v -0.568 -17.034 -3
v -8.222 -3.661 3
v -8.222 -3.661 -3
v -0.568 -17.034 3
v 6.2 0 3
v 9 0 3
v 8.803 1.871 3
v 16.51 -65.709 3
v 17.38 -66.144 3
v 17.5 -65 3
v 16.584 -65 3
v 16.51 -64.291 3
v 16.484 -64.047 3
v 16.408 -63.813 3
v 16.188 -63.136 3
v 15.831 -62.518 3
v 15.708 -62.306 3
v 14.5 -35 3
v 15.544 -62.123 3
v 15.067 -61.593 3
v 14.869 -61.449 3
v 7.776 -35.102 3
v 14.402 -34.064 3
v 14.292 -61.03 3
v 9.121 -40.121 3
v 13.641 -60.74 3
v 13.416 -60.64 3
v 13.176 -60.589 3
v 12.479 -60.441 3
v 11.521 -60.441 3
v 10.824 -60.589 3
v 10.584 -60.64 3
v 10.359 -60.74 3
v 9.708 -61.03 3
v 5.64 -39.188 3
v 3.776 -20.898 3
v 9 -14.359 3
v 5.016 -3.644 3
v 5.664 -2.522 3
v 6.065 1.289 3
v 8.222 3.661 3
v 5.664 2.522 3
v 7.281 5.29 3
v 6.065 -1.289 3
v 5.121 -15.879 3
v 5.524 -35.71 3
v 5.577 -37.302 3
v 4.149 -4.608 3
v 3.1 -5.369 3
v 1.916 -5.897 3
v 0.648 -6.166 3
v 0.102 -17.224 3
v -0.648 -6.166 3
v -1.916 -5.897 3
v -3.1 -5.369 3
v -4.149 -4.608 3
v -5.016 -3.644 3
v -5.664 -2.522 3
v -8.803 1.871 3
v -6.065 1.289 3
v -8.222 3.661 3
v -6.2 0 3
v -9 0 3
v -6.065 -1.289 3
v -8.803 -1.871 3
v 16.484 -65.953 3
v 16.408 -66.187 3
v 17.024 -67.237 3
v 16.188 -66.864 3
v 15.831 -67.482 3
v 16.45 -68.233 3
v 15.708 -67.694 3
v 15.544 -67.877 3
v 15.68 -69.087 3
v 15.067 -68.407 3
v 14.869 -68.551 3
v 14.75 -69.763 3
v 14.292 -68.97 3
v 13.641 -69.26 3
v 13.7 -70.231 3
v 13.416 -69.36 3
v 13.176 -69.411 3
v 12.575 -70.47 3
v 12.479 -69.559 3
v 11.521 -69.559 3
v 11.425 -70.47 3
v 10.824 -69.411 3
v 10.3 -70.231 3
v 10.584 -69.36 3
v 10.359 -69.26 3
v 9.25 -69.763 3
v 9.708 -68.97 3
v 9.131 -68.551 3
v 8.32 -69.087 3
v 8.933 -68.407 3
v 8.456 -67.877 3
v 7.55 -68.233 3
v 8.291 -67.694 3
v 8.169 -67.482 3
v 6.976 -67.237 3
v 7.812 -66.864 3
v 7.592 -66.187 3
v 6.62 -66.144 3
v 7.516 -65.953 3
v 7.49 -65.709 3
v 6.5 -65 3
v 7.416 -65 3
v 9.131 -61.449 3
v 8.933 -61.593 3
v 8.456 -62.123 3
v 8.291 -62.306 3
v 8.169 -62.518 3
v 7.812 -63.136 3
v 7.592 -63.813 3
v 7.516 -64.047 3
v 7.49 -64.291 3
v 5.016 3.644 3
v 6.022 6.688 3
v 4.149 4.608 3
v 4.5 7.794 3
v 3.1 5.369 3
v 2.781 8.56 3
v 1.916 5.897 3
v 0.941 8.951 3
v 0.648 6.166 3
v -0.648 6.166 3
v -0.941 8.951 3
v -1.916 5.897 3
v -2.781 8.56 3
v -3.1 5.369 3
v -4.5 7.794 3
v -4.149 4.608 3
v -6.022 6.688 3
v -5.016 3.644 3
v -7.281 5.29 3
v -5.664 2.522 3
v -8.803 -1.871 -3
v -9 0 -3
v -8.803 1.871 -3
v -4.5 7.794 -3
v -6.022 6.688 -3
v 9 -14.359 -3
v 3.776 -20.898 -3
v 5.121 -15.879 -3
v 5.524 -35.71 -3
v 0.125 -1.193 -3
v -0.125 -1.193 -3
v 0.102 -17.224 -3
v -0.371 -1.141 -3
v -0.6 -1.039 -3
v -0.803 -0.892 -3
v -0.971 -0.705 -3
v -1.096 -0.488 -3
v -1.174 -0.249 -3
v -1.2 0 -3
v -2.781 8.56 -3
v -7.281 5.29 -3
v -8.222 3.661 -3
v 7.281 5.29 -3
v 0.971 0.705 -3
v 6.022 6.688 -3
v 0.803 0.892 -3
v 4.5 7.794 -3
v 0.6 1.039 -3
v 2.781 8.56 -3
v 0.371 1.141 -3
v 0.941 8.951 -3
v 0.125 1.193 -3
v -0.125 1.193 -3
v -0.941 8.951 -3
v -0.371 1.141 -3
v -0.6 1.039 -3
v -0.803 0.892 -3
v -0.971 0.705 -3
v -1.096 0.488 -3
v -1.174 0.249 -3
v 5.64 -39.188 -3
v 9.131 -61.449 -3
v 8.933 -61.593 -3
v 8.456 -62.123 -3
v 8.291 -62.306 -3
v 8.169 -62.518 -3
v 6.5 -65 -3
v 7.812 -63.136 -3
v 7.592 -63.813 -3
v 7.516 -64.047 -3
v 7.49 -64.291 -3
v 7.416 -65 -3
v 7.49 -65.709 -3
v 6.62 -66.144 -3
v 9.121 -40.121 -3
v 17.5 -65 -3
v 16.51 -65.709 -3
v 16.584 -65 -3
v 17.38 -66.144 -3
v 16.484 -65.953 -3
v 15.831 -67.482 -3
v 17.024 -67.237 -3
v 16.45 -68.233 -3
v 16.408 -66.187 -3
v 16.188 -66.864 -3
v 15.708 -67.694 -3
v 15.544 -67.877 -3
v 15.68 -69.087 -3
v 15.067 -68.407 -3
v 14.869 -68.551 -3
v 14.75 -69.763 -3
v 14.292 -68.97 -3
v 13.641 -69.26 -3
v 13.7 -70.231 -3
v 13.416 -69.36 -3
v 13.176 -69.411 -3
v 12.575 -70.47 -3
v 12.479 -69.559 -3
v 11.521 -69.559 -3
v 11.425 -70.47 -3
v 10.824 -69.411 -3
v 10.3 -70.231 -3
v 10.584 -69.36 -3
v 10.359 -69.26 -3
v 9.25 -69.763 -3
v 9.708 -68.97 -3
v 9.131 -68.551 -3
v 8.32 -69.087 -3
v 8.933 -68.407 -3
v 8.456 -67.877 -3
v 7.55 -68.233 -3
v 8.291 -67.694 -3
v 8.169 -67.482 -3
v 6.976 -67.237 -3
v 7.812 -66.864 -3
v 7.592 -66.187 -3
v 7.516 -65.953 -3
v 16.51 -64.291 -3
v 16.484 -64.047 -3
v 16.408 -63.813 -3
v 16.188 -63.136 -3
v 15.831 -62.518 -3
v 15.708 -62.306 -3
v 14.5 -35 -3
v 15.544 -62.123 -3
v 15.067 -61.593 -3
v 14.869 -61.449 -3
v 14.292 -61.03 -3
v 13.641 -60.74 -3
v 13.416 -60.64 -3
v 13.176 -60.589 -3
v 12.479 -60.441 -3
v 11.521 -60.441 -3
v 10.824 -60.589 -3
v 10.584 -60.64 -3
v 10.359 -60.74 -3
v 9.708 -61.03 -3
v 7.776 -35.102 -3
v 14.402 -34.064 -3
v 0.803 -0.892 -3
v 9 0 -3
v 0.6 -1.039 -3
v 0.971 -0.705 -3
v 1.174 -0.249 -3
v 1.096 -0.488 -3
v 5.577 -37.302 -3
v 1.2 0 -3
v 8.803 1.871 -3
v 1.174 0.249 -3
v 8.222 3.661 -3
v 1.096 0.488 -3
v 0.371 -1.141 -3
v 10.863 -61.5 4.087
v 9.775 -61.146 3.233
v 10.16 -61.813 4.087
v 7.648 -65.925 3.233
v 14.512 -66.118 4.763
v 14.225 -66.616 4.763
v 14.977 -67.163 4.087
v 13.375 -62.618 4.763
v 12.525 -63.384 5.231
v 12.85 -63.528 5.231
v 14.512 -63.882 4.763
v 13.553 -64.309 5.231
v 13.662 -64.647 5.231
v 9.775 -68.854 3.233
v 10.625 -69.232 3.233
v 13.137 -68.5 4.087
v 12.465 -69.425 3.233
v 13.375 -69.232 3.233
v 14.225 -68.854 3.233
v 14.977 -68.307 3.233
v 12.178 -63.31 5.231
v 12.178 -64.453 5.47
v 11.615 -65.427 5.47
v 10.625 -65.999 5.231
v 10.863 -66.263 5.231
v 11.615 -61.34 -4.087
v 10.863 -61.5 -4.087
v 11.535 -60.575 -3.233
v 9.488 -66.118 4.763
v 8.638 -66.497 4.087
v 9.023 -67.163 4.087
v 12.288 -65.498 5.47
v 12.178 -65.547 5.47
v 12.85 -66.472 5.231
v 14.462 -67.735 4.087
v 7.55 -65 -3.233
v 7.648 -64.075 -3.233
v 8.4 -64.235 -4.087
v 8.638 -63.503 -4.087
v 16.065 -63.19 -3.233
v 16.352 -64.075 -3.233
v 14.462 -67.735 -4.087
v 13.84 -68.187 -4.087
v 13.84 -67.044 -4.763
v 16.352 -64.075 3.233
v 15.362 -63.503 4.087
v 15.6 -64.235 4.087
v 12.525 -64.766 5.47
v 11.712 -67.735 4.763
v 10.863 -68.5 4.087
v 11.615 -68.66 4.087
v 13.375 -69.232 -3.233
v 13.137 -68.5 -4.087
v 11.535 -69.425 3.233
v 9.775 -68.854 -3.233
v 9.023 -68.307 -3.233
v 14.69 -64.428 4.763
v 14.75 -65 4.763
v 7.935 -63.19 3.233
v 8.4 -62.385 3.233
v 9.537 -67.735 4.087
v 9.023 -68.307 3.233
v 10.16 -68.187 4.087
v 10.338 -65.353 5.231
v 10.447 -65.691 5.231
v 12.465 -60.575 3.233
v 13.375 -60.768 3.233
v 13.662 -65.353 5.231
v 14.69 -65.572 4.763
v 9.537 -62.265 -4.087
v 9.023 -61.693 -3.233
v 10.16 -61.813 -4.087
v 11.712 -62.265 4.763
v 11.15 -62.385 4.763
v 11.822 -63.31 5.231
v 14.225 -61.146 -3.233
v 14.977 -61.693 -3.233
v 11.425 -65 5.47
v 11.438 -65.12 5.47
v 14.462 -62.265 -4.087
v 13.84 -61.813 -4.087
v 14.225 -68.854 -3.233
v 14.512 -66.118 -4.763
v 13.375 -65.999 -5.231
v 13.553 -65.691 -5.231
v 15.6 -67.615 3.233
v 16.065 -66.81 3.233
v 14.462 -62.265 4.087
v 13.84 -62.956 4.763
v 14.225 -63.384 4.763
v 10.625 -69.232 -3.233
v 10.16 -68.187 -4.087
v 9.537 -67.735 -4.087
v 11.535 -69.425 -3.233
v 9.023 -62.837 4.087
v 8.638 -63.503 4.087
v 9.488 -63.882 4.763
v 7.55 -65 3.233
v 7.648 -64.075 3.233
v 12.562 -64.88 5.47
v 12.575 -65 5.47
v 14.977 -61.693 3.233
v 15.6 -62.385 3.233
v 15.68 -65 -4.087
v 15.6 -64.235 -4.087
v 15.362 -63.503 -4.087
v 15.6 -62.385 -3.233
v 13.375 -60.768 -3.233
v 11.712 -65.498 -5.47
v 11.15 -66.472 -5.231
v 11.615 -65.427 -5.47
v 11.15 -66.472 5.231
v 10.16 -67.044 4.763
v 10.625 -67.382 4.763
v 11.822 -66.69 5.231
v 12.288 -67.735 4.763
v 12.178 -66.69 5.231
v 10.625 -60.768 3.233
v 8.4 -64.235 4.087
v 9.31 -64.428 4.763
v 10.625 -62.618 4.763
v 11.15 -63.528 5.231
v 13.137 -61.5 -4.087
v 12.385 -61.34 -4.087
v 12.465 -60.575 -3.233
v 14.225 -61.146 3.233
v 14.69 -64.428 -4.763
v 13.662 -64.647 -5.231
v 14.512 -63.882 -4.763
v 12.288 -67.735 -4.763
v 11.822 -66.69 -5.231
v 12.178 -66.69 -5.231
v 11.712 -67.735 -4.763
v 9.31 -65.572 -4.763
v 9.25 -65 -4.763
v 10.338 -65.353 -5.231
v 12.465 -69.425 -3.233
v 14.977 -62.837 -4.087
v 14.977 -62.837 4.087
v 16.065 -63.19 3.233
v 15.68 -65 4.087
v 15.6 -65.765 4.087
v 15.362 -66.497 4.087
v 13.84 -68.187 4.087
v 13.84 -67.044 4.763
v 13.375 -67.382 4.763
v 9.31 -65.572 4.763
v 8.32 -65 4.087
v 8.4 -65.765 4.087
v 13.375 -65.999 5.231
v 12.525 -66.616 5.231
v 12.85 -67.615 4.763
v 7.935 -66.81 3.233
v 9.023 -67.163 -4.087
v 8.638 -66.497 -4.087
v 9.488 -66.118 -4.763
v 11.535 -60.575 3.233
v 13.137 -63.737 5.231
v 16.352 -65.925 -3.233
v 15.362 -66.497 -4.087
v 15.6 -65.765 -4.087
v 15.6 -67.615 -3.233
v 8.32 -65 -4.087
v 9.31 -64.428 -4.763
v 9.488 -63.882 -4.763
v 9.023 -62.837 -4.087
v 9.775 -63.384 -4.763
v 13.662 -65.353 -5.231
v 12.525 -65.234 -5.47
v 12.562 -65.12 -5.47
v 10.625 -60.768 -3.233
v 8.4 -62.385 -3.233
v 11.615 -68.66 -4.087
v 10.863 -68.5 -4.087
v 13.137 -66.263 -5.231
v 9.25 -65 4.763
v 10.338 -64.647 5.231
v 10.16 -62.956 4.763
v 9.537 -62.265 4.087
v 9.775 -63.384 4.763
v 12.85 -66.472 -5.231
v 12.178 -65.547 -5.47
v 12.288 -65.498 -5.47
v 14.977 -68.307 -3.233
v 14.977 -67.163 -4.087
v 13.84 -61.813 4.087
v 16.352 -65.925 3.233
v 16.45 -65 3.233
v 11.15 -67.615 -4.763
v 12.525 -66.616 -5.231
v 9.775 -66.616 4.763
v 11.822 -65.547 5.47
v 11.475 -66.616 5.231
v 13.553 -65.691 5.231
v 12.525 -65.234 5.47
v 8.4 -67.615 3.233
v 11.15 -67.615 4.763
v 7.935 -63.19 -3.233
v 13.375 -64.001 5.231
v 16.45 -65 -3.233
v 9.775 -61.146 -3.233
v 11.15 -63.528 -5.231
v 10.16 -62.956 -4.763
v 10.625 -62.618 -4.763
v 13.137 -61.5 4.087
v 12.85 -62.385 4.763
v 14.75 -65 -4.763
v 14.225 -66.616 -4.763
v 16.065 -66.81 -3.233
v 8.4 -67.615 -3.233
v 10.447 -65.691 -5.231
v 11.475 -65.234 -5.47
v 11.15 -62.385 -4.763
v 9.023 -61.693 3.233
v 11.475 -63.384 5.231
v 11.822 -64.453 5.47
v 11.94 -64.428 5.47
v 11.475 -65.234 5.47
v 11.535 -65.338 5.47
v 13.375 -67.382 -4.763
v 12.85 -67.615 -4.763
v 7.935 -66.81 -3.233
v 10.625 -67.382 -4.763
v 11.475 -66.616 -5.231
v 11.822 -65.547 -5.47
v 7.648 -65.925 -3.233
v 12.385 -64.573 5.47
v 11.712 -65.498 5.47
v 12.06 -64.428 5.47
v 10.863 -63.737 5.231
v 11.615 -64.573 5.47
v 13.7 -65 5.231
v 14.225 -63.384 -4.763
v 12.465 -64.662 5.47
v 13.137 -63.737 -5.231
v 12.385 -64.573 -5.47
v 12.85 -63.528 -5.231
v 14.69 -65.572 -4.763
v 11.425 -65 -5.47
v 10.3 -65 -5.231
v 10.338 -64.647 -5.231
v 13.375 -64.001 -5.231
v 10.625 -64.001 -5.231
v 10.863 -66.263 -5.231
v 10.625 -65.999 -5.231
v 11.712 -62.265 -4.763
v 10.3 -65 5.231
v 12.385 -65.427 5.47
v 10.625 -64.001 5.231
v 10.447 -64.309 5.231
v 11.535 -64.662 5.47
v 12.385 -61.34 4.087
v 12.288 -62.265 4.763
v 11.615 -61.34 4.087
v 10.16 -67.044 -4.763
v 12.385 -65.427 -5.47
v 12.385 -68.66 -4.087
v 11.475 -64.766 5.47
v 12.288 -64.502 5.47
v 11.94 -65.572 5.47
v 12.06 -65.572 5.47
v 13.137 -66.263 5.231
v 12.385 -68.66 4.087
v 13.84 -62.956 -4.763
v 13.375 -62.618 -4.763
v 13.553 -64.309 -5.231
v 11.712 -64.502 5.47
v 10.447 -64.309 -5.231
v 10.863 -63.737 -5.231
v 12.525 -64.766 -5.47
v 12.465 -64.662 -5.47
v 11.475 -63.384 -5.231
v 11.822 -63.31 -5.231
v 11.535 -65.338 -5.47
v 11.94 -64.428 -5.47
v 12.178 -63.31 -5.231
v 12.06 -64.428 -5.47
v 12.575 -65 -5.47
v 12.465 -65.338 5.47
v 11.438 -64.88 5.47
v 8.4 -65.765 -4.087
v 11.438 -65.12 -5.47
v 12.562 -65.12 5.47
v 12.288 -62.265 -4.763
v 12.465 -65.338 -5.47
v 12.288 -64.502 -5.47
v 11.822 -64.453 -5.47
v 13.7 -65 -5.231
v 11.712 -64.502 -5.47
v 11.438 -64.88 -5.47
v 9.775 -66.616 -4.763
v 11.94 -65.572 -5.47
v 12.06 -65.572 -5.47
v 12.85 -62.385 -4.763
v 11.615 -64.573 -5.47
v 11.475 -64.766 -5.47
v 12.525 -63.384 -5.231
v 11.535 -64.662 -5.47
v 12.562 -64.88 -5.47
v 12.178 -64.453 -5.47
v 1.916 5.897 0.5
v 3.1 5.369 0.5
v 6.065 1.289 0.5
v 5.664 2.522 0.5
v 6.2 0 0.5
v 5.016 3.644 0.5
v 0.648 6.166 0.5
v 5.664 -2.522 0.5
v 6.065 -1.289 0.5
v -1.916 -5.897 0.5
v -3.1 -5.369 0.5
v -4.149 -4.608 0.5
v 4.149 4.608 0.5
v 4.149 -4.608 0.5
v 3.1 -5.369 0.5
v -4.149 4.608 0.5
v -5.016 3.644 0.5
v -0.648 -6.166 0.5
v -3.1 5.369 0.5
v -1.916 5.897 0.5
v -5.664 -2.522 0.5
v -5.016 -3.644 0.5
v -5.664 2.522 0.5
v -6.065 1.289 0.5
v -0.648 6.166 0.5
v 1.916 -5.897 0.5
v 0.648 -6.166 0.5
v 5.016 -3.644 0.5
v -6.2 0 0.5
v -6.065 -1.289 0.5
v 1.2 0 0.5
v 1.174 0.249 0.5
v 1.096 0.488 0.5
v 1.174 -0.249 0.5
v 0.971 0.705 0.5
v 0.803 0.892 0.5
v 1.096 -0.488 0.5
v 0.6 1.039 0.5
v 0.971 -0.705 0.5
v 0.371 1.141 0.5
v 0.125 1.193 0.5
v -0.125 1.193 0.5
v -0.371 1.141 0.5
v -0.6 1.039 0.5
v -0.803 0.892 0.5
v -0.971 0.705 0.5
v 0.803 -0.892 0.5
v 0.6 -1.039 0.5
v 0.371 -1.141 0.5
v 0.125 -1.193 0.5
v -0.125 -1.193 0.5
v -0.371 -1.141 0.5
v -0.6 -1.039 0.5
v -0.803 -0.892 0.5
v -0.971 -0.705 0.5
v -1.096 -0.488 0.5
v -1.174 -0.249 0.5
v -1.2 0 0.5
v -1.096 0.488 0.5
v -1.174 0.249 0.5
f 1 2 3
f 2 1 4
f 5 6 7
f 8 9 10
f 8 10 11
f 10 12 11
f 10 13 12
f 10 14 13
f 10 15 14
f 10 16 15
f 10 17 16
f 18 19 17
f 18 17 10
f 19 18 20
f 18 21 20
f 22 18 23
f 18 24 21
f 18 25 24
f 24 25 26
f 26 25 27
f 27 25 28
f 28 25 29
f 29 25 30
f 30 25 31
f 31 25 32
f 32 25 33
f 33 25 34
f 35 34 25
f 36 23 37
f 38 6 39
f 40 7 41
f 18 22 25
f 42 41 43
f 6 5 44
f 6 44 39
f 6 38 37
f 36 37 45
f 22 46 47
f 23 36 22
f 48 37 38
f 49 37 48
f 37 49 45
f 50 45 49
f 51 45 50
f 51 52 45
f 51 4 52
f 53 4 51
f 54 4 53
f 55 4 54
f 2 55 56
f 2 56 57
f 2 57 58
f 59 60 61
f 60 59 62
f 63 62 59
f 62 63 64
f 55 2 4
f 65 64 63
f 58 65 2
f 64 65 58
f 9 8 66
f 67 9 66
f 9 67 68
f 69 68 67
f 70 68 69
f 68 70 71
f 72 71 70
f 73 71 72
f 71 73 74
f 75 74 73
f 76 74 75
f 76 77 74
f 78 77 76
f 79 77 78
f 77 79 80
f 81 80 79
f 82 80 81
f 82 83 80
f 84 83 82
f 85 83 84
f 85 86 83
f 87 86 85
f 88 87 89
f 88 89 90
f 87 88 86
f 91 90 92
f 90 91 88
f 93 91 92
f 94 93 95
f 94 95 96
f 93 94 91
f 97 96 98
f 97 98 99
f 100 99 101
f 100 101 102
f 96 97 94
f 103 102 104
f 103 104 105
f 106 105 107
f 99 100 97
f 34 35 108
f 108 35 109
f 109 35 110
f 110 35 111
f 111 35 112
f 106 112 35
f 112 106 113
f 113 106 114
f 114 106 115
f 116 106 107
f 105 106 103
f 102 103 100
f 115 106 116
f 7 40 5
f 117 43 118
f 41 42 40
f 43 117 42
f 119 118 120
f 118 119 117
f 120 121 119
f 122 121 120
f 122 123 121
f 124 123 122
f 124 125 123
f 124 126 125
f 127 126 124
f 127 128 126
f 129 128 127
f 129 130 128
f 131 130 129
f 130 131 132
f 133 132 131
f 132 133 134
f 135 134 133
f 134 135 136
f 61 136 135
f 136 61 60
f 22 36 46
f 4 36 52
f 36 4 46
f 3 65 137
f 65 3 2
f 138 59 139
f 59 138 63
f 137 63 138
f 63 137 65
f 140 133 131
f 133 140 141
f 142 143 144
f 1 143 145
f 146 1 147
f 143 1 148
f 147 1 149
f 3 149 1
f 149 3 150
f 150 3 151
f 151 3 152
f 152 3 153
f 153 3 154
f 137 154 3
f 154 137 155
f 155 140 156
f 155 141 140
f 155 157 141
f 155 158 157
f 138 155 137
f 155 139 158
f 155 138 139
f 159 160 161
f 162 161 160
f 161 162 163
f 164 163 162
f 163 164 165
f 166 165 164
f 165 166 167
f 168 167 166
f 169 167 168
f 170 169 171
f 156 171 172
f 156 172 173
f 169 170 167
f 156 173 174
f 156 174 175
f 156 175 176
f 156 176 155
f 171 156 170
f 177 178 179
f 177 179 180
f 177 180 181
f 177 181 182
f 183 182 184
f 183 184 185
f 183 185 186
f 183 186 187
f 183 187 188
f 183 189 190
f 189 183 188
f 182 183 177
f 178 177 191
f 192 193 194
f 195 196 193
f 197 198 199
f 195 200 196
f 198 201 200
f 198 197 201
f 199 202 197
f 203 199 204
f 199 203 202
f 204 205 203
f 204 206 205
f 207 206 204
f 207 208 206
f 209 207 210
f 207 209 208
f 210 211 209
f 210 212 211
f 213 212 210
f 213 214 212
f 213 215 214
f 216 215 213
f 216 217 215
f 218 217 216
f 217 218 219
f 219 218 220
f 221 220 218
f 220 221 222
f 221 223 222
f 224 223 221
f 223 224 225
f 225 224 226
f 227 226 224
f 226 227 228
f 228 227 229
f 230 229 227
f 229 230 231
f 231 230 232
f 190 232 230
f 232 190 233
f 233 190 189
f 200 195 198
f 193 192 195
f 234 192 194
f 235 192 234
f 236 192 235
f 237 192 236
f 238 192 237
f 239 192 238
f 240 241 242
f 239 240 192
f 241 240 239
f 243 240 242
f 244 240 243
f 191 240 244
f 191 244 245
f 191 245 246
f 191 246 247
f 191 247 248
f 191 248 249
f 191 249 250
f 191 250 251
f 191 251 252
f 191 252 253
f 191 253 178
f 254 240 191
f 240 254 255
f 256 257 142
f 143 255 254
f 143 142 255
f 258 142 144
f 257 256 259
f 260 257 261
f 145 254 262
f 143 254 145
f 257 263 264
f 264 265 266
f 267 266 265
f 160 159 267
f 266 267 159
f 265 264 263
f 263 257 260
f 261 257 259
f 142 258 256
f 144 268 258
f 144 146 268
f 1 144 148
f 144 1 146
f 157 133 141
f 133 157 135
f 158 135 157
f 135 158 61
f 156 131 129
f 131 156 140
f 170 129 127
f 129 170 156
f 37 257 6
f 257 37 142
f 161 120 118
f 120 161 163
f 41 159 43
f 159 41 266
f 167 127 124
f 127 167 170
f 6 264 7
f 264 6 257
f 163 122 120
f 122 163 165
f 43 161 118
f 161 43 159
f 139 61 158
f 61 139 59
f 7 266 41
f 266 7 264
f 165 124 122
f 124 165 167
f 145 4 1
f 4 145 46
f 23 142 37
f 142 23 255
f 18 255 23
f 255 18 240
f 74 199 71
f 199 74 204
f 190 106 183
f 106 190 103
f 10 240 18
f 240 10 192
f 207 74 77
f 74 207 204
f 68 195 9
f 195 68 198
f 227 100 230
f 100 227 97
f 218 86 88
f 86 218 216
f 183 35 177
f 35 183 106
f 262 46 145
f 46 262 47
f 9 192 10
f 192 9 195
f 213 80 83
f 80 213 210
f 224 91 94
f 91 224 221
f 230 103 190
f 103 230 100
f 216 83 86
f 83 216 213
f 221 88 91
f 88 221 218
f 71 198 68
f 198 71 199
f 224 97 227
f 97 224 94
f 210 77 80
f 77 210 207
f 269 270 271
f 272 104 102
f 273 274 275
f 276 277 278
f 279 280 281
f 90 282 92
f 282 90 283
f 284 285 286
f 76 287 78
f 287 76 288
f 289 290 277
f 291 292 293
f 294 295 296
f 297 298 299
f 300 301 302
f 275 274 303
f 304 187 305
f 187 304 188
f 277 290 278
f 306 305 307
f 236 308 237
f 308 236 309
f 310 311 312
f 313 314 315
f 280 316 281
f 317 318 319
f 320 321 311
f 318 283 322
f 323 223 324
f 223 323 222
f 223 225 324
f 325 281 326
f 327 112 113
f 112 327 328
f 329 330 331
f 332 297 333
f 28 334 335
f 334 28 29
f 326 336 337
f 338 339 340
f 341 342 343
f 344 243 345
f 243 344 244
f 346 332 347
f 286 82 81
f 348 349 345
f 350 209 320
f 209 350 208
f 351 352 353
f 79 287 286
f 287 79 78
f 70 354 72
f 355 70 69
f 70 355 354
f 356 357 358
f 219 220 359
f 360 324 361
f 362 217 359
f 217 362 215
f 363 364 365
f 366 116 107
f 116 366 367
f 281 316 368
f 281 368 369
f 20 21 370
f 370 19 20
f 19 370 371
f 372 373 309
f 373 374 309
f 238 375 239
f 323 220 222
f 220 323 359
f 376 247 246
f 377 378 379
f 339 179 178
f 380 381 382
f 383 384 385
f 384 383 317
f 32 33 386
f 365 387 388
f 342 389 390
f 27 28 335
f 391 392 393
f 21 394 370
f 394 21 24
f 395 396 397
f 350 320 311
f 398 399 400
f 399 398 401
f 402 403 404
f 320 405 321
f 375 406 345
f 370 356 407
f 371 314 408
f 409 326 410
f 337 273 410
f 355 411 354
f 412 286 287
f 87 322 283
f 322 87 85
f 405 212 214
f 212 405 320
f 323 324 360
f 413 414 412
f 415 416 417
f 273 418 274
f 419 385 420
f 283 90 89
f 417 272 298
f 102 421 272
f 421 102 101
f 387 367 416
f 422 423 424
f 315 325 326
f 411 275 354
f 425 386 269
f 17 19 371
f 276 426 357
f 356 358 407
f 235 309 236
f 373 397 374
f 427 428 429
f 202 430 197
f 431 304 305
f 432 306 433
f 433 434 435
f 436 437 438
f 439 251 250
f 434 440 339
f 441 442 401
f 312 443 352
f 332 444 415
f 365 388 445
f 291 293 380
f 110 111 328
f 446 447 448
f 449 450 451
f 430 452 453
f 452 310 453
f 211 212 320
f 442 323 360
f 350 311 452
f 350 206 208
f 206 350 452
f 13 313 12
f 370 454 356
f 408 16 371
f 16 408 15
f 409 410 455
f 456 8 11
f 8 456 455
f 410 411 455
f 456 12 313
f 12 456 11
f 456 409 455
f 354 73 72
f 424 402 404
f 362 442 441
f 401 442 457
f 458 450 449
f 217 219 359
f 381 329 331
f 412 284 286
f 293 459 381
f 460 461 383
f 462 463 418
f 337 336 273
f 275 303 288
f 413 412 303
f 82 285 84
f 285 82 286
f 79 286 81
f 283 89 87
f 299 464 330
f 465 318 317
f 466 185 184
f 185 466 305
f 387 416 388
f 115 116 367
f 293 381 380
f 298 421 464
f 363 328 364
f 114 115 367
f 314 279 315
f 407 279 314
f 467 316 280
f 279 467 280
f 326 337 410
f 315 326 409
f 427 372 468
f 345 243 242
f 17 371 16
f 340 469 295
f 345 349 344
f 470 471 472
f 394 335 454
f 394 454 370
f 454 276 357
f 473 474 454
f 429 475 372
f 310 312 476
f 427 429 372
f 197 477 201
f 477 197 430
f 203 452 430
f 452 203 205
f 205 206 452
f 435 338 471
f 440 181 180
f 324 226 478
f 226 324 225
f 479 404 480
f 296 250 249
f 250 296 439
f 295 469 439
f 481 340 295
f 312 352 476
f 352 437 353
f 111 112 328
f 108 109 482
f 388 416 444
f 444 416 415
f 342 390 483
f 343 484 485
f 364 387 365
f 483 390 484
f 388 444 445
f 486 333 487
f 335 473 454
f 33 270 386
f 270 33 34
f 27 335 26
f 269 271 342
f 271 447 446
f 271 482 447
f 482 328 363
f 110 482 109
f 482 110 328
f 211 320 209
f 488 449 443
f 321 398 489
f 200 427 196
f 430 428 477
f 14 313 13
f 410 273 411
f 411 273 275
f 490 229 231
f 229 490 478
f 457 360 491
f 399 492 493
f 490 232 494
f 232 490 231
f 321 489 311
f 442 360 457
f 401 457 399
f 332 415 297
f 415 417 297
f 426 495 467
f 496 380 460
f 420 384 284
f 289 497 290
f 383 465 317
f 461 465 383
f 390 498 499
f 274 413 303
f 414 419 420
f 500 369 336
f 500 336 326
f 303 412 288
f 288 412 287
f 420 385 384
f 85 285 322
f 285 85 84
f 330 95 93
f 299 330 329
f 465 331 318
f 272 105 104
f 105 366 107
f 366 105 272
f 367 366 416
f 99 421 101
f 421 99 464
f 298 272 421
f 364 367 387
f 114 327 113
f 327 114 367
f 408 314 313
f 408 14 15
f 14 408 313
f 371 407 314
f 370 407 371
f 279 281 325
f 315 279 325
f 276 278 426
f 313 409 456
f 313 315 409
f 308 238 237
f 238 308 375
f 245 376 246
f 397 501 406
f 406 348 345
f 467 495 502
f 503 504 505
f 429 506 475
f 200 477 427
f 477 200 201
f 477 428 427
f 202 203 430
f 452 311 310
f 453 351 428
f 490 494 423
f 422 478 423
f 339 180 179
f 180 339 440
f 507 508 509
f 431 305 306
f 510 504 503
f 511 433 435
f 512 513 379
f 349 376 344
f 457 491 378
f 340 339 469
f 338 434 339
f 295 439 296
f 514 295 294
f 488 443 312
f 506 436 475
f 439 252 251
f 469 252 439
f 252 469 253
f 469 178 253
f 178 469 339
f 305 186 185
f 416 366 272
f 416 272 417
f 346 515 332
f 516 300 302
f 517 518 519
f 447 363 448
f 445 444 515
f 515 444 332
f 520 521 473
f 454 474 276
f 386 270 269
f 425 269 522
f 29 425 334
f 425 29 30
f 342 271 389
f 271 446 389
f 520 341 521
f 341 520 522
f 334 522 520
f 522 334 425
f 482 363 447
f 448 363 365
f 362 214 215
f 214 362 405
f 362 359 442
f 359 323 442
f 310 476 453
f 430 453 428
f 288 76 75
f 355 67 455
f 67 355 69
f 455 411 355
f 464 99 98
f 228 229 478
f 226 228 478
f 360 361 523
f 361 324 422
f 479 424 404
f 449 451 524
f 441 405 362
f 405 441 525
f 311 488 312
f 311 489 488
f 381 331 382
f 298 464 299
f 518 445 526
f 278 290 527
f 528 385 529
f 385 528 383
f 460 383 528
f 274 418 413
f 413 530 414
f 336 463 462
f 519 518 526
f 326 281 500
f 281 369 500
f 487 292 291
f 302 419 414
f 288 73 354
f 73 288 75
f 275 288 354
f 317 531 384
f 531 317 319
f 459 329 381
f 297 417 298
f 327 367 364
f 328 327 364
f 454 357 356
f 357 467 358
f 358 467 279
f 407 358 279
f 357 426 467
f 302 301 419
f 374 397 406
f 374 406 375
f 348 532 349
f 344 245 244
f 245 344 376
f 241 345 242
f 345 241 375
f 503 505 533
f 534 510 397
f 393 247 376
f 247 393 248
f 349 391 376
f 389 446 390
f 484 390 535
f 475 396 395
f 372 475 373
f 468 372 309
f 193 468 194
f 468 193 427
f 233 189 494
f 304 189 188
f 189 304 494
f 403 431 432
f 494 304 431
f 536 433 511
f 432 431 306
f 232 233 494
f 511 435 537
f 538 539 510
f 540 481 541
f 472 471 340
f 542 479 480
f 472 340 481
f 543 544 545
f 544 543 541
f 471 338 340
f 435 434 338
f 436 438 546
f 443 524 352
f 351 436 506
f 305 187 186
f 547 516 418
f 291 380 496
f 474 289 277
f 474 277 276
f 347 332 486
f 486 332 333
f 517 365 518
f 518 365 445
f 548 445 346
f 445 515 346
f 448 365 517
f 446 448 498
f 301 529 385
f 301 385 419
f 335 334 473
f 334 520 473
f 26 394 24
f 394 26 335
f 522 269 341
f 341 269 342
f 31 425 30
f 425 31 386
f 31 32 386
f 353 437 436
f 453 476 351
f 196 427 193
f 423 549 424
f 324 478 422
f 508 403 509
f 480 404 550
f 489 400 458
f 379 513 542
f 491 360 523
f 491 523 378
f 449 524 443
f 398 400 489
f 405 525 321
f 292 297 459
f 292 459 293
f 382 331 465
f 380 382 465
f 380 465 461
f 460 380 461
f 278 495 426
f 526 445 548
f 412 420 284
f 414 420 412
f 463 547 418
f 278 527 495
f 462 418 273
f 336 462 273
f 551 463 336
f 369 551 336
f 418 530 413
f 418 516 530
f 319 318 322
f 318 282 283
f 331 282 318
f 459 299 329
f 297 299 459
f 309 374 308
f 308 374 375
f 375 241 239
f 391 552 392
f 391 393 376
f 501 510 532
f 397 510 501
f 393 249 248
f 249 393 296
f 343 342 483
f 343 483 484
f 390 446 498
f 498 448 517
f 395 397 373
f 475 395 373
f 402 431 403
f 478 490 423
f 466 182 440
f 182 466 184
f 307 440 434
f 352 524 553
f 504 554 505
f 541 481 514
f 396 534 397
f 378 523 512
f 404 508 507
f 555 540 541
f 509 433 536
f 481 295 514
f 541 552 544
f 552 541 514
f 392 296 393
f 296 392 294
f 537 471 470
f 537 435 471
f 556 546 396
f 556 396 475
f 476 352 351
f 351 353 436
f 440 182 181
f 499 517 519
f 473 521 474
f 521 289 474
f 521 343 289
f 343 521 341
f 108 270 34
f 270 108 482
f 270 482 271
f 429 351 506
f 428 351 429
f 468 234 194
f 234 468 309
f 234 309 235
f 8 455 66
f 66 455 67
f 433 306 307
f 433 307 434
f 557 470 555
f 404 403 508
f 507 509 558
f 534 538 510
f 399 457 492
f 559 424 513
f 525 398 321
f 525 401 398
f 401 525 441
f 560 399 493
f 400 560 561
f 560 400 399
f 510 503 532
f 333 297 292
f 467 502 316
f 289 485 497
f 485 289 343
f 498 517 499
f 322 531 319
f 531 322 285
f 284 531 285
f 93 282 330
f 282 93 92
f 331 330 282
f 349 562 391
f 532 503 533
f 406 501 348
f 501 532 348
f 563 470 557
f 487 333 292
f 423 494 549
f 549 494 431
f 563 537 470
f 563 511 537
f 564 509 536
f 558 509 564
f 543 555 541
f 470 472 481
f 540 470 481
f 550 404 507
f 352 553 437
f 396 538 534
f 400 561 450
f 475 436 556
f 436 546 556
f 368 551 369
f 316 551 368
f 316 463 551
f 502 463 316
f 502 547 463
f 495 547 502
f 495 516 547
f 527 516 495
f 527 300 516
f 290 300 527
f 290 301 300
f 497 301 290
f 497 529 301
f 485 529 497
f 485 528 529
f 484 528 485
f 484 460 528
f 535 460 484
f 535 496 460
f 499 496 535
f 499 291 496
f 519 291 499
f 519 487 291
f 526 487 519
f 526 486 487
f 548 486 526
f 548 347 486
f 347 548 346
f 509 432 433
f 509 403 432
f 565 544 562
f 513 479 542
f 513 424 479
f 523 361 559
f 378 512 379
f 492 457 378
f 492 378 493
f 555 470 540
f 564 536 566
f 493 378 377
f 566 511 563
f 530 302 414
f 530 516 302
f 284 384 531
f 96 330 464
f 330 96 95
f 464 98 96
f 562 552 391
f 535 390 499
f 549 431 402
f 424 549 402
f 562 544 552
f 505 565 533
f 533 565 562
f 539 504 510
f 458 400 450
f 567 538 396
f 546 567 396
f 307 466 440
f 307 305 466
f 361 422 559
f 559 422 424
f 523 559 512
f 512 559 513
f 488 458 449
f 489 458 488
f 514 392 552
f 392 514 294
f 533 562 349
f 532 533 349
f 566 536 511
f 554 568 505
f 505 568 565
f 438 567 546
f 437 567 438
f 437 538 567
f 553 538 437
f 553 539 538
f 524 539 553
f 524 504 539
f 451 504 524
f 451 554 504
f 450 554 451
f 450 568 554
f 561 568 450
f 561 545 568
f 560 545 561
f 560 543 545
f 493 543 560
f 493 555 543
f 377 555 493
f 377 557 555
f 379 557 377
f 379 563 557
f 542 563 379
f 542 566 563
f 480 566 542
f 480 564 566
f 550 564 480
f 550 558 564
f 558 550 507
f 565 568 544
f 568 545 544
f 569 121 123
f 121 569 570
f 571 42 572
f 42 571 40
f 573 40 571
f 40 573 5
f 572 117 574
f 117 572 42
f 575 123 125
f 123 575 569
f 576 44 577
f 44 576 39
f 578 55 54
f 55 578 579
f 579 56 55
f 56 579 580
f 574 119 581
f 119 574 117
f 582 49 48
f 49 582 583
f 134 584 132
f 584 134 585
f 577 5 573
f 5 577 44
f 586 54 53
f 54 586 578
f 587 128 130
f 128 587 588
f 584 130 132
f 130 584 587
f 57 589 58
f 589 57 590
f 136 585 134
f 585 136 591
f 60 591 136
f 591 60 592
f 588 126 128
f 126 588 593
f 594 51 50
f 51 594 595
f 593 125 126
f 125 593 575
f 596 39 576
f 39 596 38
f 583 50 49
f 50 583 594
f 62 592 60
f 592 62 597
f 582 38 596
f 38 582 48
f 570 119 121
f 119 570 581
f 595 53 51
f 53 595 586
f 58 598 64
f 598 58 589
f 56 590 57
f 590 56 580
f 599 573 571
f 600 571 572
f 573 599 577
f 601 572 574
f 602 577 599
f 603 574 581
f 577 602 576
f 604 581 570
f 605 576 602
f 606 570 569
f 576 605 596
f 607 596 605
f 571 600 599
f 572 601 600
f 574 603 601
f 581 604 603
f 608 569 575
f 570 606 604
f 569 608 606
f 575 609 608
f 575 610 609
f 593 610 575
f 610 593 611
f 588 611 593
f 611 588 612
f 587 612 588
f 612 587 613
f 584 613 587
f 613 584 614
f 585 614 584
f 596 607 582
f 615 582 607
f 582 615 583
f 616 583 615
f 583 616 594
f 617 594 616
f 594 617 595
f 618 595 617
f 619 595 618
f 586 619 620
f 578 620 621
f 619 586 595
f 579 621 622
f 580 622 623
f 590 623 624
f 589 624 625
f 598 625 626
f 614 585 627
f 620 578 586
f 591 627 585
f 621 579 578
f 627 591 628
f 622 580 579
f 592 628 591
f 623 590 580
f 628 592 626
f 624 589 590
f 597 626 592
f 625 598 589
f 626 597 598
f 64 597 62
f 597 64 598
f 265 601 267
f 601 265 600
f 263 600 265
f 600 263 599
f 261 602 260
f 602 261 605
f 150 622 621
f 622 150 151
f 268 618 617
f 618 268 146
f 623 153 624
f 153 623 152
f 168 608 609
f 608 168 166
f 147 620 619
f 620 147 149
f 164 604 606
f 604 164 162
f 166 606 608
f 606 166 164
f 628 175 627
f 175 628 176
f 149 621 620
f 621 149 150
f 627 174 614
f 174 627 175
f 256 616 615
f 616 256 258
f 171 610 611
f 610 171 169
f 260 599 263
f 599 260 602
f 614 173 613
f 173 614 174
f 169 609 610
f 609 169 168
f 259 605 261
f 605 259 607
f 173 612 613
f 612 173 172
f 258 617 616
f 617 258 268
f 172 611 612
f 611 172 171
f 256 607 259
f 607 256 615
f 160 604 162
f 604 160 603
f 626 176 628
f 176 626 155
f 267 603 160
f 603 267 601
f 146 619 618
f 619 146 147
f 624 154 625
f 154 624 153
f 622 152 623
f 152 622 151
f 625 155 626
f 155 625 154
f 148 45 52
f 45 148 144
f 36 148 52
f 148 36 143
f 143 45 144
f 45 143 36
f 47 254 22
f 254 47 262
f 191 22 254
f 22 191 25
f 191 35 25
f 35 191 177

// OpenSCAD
// Tibia (Lower Leg) para USS SpiderBot
// Diseñado para acoplarse directamente al horn del servo de rodilla (Knee Pitch)
// Taller de Programación I - Solemne 3

$fn = 30;

tibia_h = 65.0;    // Altura vertical de la tibia
tibia_t = 6.0;     // Grosor de la pieza

module tibia() {
    difference() {
        // Estructura curvada principal
        union() {
            hull() {
                // Junta superior de la rodilla (acople al horn del servo)
                cylinder(r = 9, h = tibia_t, center=true);
                // Cuerpo medio superior
                translate([4, -15, 0])
                    cylinder(r = 5, h = tibia_t, center=true);
            }
            hull() {
                // Cuerpo medio superior
                translate([4, -15, 0])
                    cylinder(r = 5, h = tibia_t, center=true);
                // Cuerpo medio inferior
                translate([10, -35, 0])
                    cylinder(r = 4.5, h = tibia_t, center=true);
            }
            hull() {
                // Cuerpo medio inferior
                translate([10, -35, 0])
                    cylinder(r = 4.5, h = tibia_t, center=true);
                // Tobillo/Pie
                translate([12, -tibia_h, 0])
                    cylinder(r = 5.5, h = tibia_t, center=true);
            }
            // Pie de bola antideslizante
            translate([12, -tibia_h, 0])
                sphere(r=5.5);
        }
        
        // 1. Acople para el horn del servo de Rodilla (Knee Pitch) en el origen (0,0)
        // Desplazado a Z=1.8 para cortar limpiamente la cara exterior (Z=3.0) sin dejar pared residual
        translate([0, 0, 1.8]) {
            cylinder(r = 6.2, h = 2.6, center=true);
            // Agujero para el tornillo central del servo
            cylinder(r = 1.2, h = 10, center=true);
        }
        
        // 2. Alivios de peso triangulares estéticos (Truss style)
        // Triángulo 1
        translate([3, -18, 0])
            rotate([0, 0, 45])
                cylinder(r = 3, h = tibia_t + 2, $fn=3, center=true);
                
        // Triángulo 2
        translate([7, -38, 0])
            rotate([0, 0, -45])
                cylinder(r = 3, h = tibia_t + 2, $fn=3, center=true);
    }
}

tibia();
